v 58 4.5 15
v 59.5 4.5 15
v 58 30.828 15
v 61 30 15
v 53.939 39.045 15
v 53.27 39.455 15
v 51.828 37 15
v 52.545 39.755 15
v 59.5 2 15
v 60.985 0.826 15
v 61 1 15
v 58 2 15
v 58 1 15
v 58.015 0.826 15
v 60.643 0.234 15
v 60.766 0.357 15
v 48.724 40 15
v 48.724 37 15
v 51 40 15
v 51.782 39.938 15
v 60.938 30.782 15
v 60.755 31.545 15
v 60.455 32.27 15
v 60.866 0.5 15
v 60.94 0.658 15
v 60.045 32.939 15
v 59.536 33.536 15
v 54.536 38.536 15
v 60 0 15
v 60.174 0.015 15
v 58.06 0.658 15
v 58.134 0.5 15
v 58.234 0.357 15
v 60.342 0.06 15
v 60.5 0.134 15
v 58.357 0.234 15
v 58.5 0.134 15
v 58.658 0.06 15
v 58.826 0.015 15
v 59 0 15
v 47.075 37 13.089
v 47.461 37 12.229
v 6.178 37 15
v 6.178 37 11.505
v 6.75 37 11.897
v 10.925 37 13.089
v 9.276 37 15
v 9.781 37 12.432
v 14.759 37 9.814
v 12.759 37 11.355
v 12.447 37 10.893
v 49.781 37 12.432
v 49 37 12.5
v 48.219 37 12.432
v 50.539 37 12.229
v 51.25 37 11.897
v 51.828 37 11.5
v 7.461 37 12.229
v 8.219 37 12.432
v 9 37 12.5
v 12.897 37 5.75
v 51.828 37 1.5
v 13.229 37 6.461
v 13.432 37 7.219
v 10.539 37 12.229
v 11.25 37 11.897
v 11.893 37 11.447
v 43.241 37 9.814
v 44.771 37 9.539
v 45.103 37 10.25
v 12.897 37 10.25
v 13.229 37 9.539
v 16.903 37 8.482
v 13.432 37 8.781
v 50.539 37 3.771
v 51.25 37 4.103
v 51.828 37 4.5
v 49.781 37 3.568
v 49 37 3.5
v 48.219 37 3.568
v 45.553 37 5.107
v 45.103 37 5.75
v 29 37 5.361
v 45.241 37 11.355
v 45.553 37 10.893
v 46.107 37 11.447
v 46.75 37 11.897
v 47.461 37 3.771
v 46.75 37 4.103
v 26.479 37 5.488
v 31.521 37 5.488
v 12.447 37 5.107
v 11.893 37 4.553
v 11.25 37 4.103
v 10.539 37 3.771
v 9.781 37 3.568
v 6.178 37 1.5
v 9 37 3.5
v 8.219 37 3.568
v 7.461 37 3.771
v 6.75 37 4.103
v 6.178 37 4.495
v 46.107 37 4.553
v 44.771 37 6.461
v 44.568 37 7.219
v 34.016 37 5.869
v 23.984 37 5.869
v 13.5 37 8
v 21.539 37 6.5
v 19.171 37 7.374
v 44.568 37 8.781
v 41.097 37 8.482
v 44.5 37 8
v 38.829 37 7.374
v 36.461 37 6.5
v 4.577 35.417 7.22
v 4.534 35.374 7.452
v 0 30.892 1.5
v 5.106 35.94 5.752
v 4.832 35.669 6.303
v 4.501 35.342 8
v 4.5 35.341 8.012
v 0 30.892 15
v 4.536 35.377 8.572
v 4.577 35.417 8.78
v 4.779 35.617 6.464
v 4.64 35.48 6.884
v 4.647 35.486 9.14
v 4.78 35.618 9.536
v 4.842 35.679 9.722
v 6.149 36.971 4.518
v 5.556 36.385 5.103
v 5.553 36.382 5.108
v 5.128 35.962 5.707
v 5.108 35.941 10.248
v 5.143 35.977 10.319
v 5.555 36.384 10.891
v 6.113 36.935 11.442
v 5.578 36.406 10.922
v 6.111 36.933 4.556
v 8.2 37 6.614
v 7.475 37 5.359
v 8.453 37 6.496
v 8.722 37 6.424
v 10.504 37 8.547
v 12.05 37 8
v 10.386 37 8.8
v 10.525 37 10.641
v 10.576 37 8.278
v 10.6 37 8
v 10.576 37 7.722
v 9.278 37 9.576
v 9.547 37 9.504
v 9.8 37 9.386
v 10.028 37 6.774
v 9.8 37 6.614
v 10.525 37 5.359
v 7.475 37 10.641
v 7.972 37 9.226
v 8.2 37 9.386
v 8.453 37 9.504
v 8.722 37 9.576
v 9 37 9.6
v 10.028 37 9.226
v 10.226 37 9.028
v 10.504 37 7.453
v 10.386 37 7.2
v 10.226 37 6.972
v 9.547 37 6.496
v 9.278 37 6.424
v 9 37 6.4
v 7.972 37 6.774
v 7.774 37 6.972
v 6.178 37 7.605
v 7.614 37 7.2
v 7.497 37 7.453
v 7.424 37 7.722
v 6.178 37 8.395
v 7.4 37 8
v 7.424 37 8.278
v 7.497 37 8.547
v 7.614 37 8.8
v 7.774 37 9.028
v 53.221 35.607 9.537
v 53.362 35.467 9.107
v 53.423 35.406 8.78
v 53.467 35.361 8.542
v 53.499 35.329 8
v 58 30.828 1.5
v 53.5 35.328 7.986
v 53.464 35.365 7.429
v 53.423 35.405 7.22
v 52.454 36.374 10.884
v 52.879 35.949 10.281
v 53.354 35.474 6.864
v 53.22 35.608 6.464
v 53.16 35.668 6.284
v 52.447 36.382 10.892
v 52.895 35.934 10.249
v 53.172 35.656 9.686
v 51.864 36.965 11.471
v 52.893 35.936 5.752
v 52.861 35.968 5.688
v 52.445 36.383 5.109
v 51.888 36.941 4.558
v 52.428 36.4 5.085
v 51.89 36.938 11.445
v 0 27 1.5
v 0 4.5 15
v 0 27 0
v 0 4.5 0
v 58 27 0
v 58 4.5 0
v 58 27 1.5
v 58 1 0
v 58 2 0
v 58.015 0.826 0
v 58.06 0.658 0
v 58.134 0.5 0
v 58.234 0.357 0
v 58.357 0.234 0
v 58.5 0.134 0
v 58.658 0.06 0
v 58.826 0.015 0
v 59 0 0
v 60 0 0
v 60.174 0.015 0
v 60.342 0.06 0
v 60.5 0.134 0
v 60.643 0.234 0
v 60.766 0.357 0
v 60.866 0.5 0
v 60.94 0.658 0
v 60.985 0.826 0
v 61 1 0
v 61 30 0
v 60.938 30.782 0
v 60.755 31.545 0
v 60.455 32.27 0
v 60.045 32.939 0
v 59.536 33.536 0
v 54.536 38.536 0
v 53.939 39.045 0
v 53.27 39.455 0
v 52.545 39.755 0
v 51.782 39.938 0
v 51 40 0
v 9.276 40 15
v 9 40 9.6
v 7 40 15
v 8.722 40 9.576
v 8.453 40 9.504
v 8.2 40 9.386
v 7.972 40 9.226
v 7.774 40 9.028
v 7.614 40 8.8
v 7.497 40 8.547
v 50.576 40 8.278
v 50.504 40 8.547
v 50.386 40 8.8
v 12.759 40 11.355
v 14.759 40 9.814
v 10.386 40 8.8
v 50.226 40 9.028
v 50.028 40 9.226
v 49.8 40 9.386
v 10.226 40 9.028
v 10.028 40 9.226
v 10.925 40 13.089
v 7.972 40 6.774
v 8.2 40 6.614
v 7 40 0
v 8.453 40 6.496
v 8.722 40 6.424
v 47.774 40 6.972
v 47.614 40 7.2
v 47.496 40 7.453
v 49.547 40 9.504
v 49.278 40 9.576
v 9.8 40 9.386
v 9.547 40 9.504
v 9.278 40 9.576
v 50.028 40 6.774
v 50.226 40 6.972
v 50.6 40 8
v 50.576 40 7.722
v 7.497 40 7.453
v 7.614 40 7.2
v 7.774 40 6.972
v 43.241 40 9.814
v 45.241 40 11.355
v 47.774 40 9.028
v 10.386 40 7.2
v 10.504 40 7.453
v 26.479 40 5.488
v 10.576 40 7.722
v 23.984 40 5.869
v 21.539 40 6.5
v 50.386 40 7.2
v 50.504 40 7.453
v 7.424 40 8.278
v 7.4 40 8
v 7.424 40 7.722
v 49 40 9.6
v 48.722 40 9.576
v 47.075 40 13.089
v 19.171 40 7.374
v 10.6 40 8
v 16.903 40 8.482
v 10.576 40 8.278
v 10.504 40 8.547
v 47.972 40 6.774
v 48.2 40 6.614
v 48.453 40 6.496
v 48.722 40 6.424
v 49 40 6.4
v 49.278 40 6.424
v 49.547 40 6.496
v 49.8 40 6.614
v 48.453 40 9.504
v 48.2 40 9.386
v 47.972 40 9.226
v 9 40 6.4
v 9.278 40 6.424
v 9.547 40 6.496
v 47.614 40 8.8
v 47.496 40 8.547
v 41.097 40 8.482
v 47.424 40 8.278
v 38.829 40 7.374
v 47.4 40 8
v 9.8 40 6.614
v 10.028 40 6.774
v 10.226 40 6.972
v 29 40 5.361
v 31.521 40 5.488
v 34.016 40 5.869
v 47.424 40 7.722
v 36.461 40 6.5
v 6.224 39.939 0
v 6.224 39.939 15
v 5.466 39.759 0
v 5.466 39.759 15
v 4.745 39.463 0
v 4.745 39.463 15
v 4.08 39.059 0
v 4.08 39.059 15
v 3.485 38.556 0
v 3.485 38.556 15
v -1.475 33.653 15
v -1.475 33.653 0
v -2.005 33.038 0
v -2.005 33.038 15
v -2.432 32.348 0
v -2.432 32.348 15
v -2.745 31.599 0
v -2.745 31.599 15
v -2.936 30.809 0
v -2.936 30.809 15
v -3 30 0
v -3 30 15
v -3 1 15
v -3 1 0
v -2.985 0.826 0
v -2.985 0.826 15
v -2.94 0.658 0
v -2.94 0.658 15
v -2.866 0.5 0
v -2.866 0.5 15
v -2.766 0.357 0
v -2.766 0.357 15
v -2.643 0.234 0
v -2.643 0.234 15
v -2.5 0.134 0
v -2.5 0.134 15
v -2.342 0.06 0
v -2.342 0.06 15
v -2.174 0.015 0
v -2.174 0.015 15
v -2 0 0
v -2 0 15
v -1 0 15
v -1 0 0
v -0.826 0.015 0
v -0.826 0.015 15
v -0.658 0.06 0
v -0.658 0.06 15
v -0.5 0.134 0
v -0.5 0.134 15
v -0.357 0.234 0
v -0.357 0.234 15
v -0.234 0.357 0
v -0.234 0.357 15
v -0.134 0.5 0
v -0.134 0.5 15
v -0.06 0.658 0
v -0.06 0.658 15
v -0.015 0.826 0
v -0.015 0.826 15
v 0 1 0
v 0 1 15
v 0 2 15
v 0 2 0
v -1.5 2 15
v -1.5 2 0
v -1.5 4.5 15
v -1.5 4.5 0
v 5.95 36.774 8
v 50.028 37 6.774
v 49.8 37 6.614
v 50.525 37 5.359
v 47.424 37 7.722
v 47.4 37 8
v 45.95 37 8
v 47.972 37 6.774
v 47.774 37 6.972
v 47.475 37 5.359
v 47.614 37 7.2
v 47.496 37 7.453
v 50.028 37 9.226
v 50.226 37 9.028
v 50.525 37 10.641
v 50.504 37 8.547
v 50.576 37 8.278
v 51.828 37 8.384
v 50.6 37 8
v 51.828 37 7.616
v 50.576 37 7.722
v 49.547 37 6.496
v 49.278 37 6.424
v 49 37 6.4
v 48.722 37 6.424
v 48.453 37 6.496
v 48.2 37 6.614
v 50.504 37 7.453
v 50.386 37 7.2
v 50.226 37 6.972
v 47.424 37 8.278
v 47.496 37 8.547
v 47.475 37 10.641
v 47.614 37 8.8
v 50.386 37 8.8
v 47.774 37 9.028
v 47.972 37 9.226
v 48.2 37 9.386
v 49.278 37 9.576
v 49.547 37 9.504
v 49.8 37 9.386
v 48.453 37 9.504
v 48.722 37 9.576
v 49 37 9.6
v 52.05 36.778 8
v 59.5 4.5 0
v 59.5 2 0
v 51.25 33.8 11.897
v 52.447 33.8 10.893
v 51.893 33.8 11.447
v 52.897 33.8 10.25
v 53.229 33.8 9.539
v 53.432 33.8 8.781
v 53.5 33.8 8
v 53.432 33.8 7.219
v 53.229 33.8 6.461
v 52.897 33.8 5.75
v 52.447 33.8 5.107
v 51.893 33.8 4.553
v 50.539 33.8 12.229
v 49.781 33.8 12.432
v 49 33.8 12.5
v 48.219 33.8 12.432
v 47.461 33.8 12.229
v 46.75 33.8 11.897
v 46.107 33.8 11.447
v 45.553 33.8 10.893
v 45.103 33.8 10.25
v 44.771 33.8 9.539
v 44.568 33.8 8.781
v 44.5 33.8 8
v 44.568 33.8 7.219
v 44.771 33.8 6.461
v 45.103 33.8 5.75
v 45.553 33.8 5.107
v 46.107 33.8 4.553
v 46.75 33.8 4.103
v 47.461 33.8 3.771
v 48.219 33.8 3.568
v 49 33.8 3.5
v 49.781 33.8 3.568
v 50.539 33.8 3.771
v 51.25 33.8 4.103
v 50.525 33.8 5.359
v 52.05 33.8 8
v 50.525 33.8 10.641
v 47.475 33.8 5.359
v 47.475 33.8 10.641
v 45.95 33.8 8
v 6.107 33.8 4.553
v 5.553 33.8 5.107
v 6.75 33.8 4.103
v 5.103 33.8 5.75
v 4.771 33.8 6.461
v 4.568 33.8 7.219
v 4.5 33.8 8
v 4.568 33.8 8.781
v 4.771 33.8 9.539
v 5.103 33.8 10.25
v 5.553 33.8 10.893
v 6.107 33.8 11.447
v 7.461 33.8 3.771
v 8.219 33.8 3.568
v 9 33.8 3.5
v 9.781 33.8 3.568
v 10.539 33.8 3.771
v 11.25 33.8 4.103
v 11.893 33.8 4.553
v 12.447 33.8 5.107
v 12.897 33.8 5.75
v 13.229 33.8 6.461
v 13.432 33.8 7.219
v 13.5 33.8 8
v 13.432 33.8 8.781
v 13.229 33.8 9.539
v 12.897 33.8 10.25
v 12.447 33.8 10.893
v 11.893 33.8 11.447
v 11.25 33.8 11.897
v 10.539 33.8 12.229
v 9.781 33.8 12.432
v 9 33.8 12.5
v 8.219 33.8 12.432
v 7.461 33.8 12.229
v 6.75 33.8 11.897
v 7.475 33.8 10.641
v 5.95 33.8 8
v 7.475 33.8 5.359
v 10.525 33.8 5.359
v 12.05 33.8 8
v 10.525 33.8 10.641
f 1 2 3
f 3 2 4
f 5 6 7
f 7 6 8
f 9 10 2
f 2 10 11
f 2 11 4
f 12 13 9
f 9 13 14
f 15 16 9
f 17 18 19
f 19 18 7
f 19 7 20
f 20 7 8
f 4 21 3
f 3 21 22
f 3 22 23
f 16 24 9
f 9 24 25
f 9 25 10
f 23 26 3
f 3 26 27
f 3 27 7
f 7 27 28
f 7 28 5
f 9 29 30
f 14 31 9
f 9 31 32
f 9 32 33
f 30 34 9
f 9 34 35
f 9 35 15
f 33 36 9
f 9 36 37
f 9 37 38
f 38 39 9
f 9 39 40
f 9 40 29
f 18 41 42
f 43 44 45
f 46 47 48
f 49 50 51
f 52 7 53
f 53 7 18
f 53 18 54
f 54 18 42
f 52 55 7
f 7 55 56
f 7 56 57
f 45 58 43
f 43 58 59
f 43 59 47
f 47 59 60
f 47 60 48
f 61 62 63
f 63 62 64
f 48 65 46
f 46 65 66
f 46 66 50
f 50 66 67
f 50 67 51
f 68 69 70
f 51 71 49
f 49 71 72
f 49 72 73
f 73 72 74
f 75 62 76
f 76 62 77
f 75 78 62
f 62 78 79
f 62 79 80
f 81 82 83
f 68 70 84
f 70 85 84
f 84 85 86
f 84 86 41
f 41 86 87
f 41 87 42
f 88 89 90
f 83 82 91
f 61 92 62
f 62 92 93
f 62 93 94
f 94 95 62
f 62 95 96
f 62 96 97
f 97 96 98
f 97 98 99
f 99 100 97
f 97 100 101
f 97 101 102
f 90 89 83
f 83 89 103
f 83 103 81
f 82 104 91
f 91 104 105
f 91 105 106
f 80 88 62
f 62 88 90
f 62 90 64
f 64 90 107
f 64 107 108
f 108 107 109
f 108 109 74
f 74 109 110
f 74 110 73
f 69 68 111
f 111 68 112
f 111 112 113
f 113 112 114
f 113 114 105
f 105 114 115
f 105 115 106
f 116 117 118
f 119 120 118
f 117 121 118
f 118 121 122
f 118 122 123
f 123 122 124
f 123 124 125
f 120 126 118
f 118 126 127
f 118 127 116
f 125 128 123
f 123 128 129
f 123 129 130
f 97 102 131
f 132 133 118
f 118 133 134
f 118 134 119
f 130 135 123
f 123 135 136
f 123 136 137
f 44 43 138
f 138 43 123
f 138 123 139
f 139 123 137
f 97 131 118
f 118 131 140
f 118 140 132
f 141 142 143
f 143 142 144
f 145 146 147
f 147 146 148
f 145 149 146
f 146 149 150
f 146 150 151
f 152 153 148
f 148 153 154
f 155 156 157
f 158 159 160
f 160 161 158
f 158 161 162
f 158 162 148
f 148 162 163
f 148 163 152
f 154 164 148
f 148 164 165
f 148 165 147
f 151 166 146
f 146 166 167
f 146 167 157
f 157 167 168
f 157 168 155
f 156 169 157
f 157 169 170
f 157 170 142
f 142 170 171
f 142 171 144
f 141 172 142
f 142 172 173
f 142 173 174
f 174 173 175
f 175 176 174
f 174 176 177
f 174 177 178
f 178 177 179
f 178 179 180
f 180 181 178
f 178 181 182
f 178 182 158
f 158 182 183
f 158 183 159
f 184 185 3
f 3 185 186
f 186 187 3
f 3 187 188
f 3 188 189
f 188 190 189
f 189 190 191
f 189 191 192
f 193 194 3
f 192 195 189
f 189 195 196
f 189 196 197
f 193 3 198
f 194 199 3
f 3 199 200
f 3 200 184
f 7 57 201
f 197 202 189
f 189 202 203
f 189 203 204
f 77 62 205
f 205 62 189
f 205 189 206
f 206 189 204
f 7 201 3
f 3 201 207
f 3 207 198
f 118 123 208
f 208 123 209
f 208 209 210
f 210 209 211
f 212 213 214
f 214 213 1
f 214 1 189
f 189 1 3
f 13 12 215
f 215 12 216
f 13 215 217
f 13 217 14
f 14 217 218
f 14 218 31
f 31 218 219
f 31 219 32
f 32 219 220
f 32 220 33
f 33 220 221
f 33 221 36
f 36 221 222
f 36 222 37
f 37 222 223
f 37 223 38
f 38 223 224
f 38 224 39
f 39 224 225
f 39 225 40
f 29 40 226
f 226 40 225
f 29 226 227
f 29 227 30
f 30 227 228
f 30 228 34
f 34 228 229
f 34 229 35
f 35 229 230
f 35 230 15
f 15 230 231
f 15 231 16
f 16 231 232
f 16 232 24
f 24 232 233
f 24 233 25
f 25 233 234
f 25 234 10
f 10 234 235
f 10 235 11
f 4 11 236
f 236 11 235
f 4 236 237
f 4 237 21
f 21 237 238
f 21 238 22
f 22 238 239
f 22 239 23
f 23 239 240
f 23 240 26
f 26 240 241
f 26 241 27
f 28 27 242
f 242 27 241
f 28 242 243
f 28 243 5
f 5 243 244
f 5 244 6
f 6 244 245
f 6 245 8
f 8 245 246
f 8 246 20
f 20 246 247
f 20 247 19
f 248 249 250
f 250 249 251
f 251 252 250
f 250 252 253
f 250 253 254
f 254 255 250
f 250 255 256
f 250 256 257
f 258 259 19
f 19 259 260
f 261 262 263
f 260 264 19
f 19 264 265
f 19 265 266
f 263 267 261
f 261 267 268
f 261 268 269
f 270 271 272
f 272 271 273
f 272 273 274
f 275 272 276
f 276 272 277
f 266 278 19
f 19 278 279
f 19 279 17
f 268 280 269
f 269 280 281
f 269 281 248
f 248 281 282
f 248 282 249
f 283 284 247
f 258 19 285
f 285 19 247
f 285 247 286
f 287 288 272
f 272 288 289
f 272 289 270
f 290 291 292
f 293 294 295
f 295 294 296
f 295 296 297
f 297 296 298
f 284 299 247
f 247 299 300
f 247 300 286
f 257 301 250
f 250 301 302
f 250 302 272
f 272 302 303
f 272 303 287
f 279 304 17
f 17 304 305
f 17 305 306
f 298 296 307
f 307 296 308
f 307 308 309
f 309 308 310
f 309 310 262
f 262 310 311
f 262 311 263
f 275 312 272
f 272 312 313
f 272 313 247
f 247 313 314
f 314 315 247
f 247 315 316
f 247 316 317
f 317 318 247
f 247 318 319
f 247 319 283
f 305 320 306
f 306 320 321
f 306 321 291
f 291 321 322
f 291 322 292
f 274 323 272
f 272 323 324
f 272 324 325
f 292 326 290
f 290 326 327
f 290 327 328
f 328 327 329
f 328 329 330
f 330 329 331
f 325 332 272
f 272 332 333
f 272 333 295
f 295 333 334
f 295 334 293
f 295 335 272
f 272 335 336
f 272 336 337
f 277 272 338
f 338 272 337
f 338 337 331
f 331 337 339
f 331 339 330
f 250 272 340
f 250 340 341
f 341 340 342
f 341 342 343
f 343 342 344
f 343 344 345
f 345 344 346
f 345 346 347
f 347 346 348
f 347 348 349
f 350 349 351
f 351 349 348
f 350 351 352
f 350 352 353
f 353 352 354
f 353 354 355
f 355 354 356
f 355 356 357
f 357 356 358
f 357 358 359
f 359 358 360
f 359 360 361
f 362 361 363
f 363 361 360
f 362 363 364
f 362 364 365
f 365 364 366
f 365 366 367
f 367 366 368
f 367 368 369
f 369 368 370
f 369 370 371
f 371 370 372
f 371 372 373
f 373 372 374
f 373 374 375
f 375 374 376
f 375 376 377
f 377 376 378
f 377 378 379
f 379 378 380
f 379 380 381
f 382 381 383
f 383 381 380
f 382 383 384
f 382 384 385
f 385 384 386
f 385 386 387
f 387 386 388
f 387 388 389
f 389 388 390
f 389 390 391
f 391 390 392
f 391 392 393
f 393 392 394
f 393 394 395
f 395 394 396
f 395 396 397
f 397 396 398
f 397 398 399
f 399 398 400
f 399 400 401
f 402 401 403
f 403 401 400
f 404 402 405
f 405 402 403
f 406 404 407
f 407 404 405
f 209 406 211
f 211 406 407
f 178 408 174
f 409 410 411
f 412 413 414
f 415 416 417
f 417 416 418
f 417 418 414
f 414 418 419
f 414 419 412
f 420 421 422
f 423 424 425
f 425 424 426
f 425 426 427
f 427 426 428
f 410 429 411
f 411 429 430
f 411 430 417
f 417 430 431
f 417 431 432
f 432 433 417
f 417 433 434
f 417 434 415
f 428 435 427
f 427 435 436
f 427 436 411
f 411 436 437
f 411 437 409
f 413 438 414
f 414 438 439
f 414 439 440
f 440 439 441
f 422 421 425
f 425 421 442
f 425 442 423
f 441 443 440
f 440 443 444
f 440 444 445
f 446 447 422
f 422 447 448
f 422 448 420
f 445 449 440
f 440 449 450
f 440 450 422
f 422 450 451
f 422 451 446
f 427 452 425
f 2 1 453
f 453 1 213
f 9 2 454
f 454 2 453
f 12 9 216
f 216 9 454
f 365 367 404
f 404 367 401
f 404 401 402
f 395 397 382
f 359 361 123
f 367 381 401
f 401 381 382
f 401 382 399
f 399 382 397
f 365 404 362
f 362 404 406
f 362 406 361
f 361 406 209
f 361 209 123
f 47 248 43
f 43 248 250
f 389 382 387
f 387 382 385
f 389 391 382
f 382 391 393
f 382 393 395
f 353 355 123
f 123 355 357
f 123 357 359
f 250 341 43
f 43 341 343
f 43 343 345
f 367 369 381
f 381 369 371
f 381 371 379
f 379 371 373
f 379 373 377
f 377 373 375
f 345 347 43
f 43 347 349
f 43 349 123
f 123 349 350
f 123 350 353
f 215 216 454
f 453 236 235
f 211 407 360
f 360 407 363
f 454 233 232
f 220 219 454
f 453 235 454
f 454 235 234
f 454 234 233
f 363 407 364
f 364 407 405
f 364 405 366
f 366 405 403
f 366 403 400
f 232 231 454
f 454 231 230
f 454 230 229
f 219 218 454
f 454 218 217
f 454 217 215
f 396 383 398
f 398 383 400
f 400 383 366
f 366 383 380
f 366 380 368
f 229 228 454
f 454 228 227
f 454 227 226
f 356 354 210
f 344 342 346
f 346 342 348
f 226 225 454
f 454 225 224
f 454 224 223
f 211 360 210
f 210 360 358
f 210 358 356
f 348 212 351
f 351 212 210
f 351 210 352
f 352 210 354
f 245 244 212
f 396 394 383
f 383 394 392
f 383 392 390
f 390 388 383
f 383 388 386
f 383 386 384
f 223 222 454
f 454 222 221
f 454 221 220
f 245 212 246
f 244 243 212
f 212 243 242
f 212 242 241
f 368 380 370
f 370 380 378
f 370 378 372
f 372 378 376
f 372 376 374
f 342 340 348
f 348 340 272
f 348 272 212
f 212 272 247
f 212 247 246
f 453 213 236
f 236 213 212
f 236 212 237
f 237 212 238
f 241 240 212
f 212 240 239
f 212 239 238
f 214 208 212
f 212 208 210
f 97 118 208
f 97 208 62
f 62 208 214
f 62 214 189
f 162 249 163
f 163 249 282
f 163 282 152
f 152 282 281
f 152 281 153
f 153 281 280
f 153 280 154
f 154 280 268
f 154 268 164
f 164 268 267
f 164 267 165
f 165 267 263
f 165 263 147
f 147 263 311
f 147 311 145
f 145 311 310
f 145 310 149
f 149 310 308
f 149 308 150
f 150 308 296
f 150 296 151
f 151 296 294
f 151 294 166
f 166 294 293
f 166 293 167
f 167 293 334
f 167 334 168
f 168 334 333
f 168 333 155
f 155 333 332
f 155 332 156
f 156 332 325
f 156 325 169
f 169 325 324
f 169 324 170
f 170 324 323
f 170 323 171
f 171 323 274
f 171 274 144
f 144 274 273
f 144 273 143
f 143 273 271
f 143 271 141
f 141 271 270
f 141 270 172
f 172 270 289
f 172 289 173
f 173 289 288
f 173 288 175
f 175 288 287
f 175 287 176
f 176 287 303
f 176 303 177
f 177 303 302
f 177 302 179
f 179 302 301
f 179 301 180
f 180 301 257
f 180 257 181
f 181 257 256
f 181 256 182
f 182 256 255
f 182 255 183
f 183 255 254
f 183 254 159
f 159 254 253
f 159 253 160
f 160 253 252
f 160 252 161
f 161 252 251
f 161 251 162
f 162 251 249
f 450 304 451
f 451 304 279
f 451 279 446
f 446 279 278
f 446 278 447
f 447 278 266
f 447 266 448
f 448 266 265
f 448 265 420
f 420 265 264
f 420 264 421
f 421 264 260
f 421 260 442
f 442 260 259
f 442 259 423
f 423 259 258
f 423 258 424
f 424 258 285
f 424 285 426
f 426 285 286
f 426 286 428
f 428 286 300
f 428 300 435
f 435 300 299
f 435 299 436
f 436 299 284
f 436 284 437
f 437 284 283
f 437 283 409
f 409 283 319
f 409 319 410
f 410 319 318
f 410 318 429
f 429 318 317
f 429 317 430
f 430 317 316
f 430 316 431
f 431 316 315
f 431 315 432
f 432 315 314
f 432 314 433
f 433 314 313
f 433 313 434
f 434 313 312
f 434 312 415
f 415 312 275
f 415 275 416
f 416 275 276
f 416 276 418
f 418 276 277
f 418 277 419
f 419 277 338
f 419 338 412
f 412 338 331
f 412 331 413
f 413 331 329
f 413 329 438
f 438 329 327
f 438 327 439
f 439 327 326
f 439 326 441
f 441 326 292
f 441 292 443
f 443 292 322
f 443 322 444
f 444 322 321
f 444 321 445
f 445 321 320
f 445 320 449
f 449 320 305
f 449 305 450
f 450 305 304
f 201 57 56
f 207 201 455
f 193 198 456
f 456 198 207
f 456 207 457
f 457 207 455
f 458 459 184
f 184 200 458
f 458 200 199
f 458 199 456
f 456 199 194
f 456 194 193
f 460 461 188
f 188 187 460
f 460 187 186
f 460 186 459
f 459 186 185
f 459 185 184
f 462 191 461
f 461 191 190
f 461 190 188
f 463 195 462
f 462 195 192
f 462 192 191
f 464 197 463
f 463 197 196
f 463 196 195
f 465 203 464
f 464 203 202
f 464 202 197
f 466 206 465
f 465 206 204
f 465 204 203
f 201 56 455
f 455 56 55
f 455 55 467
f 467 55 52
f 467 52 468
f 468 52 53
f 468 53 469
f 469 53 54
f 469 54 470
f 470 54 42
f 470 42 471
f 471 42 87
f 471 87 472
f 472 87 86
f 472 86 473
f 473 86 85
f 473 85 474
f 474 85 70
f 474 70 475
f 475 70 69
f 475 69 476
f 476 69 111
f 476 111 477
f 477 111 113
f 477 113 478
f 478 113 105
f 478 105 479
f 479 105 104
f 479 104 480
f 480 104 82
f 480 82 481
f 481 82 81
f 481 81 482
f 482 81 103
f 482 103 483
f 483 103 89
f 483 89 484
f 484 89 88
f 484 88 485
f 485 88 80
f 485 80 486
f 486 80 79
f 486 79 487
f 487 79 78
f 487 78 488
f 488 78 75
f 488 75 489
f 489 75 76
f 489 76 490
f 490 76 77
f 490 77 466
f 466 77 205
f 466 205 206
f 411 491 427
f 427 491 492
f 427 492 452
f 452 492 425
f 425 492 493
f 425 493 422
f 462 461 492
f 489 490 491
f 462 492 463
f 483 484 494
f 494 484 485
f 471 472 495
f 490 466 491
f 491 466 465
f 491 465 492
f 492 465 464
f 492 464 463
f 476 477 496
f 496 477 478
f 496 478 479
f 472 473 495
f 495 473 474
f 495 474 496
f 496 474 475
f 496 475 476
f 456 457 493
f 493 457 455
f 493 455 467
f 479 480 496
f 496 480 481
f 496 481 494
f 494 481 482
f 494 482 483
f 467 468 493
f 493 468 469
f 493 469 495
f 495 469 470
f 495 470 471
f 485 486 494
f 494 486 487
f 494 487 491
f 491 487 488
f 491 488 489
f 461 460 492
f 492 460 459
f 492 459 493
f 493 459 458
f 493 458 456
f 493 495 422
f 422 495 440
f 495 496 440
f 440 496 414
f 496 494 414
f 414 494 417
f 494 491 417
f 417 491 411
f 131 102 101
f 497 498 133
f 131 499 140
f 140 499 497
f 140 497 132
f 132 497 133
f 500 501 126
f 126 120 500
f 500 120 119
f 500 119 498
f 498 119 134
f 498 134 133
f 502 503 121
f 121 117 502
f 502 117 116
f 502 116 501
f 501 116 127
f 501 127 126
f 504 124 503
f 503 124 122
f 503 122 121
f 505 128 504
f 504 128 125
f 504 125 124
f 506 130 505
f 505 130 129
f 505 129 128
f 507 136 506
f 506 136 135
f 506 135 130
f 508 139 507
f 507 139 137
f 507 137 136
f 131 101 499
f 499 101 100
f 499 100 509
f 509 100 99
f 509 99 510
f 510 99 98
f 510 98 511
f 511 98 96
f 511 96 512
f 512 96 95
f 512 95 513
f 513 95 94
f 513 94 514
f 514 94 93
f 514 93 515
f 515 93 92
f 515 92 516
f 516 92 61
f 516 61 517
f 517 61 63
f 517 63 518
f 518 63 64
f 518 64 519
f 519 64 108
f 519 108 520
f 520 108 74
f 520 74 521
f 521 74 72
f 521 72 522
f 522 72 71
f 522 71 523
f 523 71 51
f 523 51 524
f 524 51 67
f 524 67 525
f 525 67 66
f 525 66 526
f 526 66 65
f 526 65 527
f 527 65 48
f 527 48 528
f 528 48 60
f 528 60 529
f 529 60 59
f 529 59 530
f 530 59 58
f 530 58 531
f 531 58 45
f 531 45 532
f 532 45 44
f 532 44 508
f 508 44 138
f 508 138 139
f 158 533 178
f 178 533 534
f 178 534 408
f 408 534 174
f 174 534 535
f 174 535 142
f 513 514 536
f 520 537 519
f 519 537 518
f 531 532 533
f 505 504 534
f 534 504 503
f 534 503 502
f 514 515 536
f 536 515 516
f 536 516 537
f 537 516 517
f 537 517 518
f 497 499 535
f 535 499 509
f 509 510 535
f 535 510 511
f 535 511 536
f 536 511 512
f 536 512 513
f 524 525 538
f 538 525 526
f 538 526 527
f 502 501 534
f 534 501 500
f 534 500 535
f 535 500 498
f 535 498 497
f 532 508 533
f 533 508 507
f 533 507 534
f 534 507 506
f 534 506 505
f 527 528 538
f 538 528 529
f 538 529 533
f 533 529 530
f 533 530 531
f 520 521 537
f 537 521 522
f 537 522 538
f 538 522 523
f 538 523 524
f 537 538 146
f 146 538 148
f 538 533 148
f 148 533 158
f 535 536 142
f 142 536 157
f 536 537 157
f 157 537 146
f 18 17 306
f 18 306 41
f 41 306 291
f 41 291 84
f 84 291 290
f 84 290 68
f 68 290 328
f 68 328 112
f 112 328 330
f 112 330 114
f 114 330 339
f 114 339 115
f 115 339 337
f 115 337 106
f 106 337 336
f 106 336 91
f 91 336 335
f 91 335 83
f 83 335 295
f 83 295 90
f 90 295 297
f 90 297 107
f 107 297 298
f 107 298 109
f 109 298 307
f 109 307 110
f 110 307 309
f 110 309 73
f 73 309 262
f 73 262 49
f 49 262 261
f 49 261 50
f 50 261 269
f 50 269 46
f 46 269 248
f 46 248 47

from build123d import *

# Parameters (mm, degrees)
SALIENTE_EXTRUIR2_DEPTH = 15
SALIENTE_EXTRUIR3_DEPTH = 1.5
CROQUIS2_R              = 1.6
CORTAR_EXTRUIR1_DEPTH   = 10
CROQUIS4_R              = 4.5
SALIENTE_EXTRUIR4_DEPTH = 3.2
CORTAR_EXTRUIR2_REACH   = 42


with BuildPart() as part:
    # Croquis1 → Saliente-Extruir2 (new body)
    with BuildSketch(Plane.XY):
        with BuildLine():
            Line((51.828427125, 37), (6.178295218, 37))
            Line((6.178295218, 37), (0, 30.892284874))
            Line((0, 30.892284874), (0, 4.5))
            Line((0, 4.5), (-1.5, 4.5))
            Line((-1.5, 4.5), (-1.5, 2))
            Line((-1.5, 2), (0, 2))
            Line((0, 2), (0, 1))
            ThreePointArc((0, 1), (-0.292893219, 0.292893219), (-1, 0))
            Line((-1, 0), (-2, 0))
            ThreePointArc((-2, 0), (-2.707106781, 0.292893219), (-3, 1))
            Line((-3, 1), (-3, 30))
            ThreePointArc((-3, 30), (-2.603319545, 31.979386186), (-1.474544268, 33.65306221))
            Line((-1.474544268, 33.65306221), (3.484834866, 38.555786))
            ThreePointArc((3.484834866, 38.555786), (5.099859216, 39.624874593), (7, 40))
            Line((7, 40), (51, 40))
            ThreePointArc((51, 40), (52.913417162, 39.619397663), (54.535533906, 38.535533906))
            Line((54.535533906, 38.535533906), (59.535533906, 33.535533906))
            ThreePointArc((59.535533906, 33.535533906), (60.619397663, 31.913417162), (61, 30))
            Line((61, 30), (61, 1))
            ThreePointArc((61, 1), (60.707106781, 0.292893219), (60, 0))
            Line((60, 0), (59, 0))
            ThreePointArc((59, 0), (58.292893219, 0.292893219), (58, 1))
            Line((58, 1), (58, 2))
            Line((58, 2), (59.5, 2))
            Line((59.5, 2), (59.5, 4.5))
            Line((59.5, 4.5), (58, 4.5))
            Line((58, 4.5), (58, 30.828427125))
            Line((58, 30.828427125), (51.828427125, 37))
        make_face()
    extrude(amount=SALIENTE_EXTRUIR2_DEPTH)

    # Croquis3 → Saliente-Extruir3 (add)
    with BuildSketch(Plane.XY):
        Polygon((0, 27), (58, 27), (58, 30.828427125), (51.828427125, 37), (6.178295218, 37), (0, 30.892284874), align=None)
    extrude(amount=SALIENTE_EXTRUIR3_DEPTH)

    # Croquis2 → Cortar-Extruir1 (cut)
    with BuildSketch(Plane(origin=(0, 40, 0), x_dir=(1, 0, 0), z_dir=(0, 1, 0))):
        with Locations((9, -8)):
            Circle(CROQUIS2_R)
        with Locations((49, -8)):
            Circle(CROQUIS2_R)
    extrude(amount=-CORTAR_EXTRUIR1_DEPTH, mode=Mode.SUBTRACT)

    # Croquis4 → Saliente-Extruir4 (add)
    with BuildSketch(Plane.XZ.offset(-37)):
        with Locations((49, 8)):
            Circle(CROQUIS4_R)
        Polygon((52.05, 8), (50.525, 10.641377482), (47.475, 10.641377482), (45.95, 8), (47.475, 5.358622518), (50.525, 5.358622518), align=None, mode=Mode.SUBTRACT)
        with Locations((9, 8)):
            Circle(CROQUIS4_R)
        Polygon((10.525, 10.641377482), (7.475, 10.641377482), (5.95, 8), (7.475, 5.358622518), (10.525, 5.358622518), (12.05, 8), align=None, mode=Mode.SUBTRACT)
    extrude(amount=SALIENTE_EXTRUIR4_DEPTH)

    # Croquis5 → Cortar-Extruir2 (cut, up to next)
    with BuildSketch(Plane(origin=(0, 40, 0), x_dir=(1, 0, 0), z_dir=(0, 1, 0)), mode=Mode.PRIVATE) as cortar_extruir2_sk1:
        with BuildLine():
            Line((9.275661815, -15), (48.724338185, -15))
            ThreePointArc((48.724338185, -15), (29, -5.360679775), (9.275661815, -15))
        make_face()
    cortar_extruir2_tool1 = extrude(cortar_extruir2_sk1.sketch, amount=-CORTAR_EXTRUIR2_REACH, mode=Mode.PRIVATE) & part.part
    add(cortar_extruir2_tool1.solids().sort_by_distance((29, 40, 11.072485))[0], mode=Mode.SUBTRACT)


solid = part.part
